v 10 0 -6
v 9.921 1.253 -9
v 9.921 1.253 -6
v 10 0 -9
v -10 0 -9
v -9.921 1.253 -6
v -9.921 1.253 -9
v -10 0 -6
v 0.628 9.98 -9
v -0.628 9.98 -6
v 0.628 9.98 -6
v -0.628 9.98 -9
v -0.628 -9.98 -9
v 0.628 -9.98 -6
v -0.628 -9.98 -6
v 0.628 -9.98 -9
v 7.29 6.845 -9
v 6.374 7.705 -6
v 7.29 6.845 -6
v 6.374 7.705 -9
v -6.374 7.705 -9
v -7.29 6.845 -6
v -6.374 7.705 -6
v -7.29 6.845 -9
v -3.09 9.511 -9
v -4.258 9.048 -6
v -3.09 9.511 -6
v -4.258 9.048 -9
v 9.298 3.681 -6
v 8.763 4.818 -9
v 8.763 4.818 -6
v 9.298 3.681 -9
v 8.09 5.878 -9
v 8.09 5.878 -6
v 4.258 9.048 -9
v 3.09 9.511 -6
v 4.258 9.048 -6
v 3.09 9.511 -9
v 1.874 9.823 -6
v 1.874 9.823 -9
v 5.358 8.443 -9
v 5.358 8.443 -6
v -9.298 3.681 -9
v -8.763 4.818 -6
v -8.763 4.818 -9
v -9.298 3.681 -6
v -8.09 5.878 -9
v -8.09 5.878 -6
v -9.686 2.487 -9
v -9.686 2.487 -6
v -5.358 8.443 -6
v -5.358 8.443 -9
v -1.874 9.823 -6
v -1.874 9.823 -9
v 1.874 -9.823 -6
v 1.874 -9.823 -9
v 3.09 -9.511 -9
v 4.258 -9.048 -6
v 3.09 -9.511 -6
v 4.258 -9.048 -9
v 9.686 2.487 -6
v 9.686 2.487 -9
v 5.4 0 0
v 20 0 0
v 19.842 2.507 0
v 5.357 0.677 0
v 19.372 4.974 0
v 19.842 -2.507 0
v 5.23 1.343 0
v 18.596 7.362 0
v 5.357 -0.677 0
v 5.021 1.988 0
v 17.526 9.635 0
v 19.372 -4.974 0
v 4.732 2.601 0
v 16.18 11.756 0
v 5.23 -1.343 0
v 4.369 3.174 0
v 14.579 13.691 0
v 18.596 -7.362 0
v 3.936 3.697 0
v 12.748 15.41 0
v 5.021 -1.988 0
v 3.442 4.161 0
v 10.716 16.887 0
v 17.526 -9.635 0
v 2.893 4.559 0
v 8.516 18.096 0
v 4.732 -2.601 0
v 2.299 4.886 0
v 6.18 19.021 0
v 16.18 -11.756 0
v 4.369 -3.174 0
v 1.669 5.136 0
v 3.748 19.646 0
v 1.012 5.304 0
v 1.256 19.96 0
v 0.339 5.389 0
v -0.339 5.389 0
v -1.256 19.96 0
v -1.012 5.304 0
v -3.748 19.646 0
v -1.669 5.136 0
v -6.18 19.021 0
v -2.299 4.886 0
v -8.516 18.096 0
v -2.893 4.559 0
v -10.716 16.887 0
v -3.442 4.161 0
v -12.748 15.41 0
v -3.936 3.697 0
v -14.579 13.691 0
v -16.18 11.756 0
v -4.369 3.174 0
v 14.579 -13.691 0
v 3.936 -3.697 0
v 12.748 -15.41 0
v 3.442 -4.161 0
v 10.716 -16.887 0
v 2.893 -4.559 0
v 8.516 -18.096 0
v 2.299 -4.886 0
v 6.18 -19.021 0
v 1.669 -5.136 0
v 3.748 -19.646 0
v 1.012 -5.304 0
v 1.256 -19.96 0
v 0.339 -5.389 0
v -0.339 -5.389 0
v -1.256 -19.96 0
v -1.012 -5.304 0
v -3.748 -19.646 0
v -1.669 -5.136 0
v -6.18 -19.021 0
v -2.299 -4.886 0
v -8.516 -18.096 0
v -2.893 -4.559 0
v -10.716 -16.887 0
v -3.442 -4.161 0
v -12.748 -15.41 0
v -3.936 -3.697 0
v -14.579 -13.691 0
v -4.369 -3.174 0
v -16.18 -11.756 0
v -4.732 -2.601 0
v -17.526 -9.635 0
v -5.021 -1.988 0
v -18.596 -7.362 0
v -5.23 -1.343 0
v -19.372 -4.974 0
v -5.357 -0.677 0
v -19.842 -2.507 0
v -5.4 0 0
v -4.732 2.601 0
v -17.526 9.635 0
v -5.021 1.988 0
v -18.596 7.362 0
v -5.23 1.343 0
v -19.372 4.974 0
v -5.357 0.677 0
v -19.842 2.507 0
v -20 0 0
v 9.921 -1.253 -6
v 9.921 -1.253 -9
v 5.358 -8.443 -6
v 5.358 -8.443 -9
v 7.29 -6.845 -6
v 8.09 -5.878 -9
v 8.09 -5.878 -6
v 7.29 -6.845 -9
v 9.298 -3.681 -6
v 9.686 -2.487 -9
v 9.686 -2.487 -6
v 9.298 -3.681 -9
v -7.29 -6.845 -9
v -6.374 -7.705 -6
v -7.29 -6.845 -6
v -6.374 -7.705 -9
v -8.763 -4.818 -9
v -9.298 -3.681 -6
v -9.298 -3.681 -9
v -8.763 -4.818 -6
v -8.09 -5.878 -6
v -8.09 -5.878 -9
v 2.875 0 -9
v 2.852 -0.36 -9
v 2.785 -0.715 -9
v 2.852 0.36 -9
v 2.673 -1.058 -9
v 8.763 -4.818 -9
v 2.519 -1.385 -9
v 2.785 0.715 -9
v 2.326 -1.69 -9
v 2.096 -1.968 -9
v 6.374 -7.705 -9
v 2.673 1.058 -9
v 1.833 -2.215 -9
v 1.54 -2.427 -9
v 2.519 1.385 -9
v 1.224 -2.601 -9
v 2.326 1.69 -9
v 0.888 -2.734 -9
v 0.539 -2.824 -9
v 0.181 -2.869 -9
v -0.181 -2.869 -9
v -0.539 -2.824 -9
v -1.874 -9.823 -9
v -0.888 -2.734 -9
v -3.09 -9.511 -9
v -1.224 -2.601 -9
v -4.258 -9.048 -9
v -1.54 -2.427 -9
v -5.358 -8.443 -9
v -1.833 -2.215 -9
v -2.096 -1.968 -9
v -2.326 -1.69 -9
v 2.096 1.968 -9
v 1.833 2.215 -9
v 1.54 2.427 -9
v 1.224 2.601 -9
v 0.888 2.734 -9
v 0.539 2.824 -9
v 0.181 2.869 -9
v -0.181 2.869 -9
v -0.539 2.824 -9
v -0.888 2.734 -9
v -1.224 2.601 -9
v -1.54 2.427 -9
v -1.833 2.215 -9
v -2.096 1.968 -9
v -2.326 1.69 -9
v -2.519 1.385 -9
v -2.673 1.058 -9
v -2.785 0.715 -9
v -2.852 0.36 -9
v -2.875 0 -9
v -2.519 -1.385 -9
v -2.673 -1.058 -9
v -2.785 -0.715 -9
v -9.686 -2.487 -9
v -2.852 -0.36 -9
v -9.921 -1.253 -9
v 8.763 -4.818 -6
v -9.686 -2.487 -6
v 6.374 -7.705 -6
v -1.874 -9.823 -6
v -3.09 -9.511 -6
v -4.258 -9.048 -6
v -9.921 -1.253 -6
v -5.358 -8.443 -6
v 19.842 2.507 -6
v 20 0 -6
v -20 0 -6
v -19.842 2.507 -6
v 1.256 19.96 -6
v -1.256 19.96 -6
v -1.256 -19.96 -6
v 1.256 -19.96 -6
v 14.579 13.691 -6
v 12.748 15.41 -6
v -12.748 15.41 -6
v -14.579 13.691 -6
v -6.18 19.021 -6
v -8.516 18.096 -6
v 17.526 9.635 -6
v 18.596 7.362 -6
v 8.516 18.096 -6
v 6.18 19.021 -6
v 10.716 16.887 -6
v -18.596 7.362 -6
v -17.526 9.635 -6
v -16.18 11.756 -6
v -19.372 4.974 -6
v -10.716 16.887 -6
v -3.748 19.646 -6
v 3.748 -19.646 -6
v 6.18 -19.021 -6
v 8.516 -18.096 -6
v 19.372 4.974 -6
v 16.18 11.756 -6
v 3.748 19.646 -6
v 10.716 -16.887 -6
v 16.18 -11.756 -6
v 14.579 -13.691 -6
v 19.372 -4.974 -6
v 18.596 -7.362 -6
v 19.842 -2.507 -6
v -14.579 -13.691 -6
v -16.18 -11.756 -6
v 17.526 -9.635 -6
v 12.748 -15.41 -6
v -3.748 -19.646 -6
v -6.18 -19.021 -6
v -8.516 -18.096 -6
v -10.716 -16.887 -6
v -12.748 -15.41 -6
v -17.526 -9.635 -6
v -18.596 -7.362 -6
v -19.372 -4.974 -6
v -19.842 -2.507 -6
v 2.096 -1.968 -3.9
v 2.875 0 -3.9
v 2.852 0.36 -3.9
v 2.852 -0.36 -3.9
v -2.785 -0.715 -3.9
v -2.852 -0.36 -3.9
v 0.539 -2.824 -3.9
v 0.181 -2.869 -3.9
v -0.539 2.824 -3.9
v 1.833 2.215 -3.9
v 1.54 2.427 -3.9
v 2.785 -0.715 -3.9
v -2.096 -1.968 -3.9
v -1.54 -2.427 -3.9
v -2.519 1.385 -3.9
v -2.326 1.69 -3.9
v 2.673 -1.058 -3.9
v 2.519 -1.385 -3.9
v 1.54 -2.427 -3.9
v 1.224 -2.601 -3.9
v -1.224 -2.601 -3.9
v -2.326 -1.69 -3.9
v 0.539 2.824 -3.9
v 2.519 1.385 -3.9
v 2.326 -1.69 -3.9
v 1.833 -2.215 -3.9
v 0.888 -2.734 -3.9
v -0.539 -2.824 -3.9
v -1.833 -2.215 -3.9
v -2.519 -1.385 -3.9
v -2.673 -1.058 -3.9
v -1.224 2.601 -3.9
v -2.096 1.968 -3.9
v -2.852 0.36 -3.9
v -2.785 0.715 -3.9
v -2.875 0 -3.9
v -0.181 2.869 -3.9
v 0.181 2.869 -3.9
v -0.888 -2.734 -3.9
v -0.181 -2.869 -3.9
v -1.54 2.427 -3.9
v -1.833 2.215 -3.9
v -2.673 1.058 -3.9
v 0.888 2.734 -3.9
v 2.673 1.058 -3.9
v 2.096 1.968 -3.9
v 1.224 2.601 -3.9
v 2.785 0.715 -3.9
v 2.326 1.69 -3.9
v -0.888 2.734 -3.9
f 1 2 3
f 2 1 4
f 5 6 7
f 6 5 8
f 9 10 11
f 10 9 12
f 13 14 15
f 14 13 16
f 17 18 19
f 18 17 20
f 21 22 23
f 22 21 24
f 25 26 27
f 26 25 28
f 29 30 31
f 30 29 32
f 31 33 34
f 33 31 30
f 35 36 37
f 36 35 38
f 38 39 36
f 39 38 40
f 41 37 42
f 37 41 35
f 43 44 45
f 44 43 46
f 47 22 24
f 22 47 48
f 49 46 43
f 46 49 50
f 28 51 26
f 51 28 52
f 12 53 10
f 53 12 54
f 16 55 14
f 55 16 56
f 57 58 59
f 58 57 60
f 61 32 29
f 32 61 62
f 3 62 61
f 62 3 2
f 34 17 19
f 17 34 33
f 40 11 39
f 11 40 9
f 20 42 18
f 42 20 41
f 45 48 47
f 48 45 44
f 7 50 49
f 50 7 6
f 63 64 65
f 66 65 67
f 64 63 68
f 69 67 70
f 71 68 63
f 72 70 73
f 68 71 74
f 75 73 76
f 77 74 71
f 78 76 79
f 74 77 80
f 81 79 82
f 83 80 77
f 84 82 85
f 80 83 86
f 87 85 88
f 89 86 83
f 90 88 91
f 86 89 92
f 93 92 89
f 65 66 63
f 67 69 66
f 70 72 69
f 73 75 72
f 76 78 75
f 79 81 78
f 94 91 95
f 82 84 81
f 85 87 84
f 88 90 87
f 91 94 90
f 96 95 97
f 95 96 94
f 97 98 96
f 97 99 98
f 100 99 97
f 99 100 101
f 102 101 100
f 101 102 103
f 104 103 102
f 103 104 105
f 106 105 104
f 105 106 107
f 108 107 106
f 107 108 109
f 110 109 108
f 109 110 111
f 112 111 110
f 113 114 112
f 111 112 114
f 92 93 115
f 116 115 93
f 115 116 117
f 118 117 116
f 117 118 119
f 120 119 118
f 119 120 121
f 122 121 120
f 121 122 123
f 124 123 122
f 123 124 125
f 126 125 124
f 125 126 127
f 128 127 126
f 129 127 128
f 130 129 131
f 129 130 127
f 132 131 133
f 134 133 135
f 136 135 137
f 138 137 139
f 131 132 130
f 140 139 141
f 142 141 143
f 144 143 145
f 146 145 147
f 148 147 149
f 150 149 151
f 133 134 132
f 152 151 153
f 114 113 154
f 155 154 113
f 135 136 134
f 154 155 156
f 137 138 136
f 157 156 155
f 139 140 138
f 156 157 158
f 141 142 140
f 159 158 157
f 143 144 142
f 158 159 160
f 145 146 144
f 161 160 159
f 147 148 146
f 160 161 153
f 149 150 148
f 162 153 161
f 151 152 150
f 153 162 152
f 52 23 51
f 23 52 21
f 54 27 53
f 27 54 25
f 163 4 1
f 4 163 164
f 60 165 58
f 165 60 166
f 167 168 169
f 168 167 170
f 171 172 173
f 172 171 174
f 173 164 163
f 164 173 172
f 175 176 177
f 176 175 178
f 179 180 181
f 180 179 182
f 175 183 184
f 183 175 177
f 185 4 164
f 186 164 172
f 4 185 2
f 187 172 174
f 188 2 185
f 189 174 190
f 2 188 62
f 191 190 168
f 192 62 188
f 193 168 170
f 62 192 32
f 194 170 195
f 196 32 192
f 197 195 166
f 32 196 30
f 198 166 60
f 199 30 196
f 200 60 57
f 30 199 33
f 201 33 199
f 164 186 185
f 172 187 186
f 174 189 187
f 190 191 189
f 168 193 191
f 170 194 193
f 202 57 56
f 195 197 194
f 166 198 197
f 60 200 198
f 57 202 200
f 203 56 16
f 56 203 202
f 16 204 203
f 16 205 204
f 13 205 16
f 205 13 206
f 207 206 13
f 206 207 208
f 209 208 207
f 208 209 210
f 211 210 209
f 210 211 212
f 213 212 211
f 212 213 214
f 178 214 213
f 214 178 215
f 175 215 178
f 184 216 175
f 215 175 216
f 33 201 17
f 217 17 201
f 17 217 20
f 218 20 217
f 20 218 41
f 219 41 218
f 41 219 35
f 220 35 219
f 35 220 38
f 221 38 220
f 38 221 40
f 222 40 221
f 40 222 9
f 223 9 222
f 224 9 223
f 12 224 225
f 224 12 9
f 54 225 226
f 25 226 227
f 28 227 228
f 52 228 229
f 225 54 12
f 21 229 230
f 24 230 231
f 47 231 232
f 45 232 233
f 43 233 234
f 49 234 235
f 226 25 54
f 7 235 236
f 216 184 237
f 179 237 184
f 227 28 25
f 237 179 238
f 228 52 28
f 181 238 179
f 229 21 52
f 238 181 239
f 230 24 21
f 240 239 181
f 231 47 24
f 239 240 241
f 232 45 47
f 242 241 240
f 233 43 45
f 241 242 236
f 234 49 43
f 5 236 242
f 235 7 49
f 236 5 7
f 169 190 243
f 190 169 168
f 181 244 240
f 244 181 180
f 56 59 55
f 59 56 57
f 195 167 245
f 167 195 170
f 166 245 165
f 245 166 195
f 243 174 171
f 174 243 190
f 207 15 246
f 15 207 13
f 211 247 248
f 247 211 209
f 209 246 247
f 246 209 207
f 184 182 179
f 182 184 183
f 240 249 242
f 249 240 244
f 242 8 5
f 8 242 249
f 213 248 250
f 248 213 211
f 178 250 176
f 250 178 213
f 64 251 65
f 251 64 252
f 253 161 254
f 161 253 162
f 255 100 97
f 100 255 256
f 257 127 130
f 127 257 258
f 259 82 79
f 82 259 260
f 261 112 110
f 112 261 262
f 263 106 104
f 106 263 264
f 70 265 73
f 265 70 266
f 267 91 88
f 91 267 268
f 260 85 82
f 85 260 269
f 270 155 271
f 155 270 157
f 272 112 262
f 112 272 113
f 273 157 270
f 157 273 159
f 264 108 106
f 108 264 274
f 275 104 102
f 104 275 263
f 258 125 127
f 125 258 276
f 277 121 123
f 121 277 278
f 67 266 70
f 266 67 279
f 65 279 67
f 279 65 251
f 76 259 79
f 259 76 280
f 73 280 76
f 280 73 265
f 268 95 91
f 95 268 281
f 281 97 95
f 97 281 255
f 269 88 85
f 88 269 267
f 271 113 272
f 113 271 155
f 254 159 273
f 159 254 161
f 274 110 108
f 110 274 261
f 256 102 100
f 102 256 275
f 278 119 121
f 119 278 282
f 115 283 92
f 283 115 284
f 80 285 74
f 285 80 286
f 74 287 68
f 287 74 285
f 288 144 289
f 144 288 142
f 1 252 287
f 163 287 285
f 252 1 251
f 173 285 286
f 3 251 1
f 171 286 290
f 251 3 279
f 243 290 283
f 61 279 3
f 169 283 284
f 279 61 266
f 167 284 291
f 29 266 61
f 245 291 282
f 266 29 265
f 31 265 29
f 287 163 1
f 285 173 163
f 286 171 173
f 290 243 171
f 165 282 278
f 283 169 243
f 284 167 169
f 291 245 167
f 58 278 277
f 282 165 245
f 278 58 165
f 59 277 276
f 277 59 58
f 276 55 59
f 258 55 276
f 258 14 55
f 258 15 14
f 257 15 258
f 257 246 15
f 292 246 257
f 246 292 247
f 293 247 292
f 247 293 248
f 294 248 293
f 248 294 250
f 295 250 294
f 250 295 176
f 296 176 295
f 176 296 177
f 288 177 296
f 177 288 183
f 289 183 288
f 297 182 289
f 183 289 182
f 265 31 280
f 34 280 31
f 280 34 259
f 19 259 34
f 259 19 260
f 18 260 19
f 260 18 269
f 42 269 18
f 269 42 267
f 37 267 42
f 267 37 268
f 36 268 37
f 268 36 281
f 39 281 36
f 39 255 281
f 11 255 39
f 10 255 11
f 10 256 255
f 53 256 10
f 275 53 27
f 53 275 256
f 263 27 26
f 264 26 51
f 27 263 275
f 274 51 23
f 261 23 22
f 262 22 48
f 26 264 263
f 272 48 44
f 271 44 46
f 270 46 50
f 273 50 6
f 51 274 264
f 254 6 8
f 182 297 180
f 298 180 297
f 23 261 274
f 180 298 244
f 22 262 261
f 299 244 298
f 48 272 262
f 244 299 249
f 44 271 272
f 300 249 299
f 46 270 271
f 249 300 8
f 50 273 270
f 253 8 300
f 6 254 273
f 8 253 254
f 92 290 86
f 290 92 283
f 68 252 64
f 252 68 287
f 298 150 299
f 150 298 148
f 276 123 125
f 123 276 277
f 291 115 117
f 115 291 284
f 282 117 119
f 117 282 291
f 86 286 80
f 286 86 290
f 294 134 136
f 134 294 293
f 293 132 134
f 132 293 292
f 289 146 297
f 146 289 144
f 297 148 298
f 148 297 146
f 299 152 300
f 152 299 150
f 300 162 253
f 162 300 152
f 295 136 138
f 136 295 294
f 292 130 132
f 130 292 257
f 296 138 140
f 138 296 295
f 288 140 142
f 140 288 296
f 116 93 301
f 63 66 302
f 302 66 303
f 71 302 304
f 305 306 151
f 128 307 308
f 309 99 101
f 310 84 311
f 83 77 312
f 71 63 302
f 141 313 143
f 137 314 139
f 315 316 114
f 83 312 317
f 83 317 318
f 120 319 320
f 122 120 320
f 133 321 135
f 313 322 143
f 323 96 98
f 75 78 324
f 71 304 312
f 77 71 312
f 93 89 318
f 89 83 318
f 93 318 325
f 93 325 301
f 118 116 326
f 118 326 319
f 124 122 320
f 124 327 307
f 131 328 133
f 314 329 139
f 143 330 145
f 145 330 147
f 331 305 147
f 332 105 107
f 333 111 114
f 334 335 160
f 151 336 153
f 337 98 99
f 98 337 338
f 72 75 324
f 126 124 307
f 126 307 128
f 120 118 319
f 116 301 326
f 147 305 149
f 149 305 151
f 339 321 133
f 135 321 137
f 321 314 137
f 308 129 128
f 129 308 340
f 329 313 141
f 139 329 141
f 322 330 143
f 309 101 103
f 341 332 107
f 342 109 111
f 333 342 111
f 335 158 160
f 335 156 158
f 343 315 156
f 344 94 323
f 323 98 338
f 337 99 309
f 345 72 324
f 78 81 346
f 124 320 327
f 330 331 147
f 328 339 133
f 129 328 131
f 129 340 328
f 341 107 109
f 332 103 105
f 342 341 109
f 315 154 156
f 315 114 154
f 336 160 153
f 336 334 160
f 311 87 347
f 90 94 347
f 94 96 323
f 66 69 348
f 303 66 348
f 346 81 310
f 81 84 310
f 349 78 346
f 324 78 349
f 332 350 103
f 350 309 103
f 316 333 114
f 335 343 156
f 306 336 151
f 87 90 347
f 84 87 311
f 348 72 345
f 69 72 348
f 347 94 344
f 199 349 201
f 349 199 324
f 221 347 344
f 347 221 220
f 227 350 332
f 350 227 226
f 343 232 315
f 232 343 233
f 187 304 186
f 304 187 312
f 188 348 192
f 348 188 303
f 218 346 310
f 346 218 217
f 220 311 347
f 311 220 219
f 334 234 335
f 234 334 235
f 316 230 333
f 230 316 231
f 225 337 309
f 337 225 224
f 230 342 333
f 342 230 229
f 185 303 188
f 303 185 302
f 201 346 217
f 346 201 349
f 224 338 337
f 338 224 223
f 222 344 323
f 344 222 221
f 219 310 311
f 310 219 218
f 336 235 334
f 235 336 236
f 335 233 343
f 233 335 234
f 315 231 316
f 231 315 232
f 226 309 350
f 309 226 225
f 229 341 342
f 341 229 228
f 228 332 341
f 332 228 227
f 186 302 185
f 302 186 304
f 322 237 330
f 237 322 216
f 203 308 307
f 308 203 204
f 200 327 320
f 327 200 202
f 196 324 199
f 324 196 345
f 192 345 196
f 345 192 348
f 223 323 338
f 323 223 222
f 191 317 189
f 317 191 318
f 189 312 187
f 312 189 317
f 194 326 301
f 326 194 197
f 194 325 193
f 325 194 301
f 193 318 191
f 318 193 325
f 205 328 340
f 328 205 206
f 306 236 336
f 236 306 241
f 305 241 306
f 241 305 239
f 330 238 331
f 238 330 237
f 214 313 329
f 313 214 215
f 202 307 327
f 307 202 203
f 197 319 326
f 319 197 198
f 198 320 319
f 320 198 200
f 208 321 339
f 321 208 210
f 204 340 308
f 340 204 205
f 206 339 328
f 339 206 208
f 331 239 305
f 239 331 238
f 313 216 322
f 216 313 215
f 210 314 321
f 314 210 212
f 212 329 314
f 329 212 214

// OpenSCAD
$fn = 50;


difference() {
	union() {
		translate(v = [0, 0, -9.0000000000]) {
			cylinder(h = 9, r = 10.0000000000);
		}
		translate(v = [0, 0, -6.0000000000]) {
			cylinder(h = 6, r = 20.0000000000);
		}
	}
	union() {
		translate(v = [0, 0, 0]) {
			rotate(a = [0, 0, 0]) {
				difference() {
					union() {
						#translate(v = [0, 0, -9.0000000000]) {
							cylinder(h = 9, r = 2.6000000000);
						}
						#translate(v = [0, 0, -3.9000000000]) {
							cylinder(h = 3.9000000000, r1 = 2.8750000000, r2 = 5.4000000000);
						}
						#translate(v = [0, 0, -9.0000000000]) {
							cylinder(h = 9, r = 2.8750000000);
						}
						#translate(v = [0, 0, -9.0000000000]) {
							cylinder(h = 9, r = 2.6000000000);
						}
					}
					union();
				}
			}
		}
	}
}
